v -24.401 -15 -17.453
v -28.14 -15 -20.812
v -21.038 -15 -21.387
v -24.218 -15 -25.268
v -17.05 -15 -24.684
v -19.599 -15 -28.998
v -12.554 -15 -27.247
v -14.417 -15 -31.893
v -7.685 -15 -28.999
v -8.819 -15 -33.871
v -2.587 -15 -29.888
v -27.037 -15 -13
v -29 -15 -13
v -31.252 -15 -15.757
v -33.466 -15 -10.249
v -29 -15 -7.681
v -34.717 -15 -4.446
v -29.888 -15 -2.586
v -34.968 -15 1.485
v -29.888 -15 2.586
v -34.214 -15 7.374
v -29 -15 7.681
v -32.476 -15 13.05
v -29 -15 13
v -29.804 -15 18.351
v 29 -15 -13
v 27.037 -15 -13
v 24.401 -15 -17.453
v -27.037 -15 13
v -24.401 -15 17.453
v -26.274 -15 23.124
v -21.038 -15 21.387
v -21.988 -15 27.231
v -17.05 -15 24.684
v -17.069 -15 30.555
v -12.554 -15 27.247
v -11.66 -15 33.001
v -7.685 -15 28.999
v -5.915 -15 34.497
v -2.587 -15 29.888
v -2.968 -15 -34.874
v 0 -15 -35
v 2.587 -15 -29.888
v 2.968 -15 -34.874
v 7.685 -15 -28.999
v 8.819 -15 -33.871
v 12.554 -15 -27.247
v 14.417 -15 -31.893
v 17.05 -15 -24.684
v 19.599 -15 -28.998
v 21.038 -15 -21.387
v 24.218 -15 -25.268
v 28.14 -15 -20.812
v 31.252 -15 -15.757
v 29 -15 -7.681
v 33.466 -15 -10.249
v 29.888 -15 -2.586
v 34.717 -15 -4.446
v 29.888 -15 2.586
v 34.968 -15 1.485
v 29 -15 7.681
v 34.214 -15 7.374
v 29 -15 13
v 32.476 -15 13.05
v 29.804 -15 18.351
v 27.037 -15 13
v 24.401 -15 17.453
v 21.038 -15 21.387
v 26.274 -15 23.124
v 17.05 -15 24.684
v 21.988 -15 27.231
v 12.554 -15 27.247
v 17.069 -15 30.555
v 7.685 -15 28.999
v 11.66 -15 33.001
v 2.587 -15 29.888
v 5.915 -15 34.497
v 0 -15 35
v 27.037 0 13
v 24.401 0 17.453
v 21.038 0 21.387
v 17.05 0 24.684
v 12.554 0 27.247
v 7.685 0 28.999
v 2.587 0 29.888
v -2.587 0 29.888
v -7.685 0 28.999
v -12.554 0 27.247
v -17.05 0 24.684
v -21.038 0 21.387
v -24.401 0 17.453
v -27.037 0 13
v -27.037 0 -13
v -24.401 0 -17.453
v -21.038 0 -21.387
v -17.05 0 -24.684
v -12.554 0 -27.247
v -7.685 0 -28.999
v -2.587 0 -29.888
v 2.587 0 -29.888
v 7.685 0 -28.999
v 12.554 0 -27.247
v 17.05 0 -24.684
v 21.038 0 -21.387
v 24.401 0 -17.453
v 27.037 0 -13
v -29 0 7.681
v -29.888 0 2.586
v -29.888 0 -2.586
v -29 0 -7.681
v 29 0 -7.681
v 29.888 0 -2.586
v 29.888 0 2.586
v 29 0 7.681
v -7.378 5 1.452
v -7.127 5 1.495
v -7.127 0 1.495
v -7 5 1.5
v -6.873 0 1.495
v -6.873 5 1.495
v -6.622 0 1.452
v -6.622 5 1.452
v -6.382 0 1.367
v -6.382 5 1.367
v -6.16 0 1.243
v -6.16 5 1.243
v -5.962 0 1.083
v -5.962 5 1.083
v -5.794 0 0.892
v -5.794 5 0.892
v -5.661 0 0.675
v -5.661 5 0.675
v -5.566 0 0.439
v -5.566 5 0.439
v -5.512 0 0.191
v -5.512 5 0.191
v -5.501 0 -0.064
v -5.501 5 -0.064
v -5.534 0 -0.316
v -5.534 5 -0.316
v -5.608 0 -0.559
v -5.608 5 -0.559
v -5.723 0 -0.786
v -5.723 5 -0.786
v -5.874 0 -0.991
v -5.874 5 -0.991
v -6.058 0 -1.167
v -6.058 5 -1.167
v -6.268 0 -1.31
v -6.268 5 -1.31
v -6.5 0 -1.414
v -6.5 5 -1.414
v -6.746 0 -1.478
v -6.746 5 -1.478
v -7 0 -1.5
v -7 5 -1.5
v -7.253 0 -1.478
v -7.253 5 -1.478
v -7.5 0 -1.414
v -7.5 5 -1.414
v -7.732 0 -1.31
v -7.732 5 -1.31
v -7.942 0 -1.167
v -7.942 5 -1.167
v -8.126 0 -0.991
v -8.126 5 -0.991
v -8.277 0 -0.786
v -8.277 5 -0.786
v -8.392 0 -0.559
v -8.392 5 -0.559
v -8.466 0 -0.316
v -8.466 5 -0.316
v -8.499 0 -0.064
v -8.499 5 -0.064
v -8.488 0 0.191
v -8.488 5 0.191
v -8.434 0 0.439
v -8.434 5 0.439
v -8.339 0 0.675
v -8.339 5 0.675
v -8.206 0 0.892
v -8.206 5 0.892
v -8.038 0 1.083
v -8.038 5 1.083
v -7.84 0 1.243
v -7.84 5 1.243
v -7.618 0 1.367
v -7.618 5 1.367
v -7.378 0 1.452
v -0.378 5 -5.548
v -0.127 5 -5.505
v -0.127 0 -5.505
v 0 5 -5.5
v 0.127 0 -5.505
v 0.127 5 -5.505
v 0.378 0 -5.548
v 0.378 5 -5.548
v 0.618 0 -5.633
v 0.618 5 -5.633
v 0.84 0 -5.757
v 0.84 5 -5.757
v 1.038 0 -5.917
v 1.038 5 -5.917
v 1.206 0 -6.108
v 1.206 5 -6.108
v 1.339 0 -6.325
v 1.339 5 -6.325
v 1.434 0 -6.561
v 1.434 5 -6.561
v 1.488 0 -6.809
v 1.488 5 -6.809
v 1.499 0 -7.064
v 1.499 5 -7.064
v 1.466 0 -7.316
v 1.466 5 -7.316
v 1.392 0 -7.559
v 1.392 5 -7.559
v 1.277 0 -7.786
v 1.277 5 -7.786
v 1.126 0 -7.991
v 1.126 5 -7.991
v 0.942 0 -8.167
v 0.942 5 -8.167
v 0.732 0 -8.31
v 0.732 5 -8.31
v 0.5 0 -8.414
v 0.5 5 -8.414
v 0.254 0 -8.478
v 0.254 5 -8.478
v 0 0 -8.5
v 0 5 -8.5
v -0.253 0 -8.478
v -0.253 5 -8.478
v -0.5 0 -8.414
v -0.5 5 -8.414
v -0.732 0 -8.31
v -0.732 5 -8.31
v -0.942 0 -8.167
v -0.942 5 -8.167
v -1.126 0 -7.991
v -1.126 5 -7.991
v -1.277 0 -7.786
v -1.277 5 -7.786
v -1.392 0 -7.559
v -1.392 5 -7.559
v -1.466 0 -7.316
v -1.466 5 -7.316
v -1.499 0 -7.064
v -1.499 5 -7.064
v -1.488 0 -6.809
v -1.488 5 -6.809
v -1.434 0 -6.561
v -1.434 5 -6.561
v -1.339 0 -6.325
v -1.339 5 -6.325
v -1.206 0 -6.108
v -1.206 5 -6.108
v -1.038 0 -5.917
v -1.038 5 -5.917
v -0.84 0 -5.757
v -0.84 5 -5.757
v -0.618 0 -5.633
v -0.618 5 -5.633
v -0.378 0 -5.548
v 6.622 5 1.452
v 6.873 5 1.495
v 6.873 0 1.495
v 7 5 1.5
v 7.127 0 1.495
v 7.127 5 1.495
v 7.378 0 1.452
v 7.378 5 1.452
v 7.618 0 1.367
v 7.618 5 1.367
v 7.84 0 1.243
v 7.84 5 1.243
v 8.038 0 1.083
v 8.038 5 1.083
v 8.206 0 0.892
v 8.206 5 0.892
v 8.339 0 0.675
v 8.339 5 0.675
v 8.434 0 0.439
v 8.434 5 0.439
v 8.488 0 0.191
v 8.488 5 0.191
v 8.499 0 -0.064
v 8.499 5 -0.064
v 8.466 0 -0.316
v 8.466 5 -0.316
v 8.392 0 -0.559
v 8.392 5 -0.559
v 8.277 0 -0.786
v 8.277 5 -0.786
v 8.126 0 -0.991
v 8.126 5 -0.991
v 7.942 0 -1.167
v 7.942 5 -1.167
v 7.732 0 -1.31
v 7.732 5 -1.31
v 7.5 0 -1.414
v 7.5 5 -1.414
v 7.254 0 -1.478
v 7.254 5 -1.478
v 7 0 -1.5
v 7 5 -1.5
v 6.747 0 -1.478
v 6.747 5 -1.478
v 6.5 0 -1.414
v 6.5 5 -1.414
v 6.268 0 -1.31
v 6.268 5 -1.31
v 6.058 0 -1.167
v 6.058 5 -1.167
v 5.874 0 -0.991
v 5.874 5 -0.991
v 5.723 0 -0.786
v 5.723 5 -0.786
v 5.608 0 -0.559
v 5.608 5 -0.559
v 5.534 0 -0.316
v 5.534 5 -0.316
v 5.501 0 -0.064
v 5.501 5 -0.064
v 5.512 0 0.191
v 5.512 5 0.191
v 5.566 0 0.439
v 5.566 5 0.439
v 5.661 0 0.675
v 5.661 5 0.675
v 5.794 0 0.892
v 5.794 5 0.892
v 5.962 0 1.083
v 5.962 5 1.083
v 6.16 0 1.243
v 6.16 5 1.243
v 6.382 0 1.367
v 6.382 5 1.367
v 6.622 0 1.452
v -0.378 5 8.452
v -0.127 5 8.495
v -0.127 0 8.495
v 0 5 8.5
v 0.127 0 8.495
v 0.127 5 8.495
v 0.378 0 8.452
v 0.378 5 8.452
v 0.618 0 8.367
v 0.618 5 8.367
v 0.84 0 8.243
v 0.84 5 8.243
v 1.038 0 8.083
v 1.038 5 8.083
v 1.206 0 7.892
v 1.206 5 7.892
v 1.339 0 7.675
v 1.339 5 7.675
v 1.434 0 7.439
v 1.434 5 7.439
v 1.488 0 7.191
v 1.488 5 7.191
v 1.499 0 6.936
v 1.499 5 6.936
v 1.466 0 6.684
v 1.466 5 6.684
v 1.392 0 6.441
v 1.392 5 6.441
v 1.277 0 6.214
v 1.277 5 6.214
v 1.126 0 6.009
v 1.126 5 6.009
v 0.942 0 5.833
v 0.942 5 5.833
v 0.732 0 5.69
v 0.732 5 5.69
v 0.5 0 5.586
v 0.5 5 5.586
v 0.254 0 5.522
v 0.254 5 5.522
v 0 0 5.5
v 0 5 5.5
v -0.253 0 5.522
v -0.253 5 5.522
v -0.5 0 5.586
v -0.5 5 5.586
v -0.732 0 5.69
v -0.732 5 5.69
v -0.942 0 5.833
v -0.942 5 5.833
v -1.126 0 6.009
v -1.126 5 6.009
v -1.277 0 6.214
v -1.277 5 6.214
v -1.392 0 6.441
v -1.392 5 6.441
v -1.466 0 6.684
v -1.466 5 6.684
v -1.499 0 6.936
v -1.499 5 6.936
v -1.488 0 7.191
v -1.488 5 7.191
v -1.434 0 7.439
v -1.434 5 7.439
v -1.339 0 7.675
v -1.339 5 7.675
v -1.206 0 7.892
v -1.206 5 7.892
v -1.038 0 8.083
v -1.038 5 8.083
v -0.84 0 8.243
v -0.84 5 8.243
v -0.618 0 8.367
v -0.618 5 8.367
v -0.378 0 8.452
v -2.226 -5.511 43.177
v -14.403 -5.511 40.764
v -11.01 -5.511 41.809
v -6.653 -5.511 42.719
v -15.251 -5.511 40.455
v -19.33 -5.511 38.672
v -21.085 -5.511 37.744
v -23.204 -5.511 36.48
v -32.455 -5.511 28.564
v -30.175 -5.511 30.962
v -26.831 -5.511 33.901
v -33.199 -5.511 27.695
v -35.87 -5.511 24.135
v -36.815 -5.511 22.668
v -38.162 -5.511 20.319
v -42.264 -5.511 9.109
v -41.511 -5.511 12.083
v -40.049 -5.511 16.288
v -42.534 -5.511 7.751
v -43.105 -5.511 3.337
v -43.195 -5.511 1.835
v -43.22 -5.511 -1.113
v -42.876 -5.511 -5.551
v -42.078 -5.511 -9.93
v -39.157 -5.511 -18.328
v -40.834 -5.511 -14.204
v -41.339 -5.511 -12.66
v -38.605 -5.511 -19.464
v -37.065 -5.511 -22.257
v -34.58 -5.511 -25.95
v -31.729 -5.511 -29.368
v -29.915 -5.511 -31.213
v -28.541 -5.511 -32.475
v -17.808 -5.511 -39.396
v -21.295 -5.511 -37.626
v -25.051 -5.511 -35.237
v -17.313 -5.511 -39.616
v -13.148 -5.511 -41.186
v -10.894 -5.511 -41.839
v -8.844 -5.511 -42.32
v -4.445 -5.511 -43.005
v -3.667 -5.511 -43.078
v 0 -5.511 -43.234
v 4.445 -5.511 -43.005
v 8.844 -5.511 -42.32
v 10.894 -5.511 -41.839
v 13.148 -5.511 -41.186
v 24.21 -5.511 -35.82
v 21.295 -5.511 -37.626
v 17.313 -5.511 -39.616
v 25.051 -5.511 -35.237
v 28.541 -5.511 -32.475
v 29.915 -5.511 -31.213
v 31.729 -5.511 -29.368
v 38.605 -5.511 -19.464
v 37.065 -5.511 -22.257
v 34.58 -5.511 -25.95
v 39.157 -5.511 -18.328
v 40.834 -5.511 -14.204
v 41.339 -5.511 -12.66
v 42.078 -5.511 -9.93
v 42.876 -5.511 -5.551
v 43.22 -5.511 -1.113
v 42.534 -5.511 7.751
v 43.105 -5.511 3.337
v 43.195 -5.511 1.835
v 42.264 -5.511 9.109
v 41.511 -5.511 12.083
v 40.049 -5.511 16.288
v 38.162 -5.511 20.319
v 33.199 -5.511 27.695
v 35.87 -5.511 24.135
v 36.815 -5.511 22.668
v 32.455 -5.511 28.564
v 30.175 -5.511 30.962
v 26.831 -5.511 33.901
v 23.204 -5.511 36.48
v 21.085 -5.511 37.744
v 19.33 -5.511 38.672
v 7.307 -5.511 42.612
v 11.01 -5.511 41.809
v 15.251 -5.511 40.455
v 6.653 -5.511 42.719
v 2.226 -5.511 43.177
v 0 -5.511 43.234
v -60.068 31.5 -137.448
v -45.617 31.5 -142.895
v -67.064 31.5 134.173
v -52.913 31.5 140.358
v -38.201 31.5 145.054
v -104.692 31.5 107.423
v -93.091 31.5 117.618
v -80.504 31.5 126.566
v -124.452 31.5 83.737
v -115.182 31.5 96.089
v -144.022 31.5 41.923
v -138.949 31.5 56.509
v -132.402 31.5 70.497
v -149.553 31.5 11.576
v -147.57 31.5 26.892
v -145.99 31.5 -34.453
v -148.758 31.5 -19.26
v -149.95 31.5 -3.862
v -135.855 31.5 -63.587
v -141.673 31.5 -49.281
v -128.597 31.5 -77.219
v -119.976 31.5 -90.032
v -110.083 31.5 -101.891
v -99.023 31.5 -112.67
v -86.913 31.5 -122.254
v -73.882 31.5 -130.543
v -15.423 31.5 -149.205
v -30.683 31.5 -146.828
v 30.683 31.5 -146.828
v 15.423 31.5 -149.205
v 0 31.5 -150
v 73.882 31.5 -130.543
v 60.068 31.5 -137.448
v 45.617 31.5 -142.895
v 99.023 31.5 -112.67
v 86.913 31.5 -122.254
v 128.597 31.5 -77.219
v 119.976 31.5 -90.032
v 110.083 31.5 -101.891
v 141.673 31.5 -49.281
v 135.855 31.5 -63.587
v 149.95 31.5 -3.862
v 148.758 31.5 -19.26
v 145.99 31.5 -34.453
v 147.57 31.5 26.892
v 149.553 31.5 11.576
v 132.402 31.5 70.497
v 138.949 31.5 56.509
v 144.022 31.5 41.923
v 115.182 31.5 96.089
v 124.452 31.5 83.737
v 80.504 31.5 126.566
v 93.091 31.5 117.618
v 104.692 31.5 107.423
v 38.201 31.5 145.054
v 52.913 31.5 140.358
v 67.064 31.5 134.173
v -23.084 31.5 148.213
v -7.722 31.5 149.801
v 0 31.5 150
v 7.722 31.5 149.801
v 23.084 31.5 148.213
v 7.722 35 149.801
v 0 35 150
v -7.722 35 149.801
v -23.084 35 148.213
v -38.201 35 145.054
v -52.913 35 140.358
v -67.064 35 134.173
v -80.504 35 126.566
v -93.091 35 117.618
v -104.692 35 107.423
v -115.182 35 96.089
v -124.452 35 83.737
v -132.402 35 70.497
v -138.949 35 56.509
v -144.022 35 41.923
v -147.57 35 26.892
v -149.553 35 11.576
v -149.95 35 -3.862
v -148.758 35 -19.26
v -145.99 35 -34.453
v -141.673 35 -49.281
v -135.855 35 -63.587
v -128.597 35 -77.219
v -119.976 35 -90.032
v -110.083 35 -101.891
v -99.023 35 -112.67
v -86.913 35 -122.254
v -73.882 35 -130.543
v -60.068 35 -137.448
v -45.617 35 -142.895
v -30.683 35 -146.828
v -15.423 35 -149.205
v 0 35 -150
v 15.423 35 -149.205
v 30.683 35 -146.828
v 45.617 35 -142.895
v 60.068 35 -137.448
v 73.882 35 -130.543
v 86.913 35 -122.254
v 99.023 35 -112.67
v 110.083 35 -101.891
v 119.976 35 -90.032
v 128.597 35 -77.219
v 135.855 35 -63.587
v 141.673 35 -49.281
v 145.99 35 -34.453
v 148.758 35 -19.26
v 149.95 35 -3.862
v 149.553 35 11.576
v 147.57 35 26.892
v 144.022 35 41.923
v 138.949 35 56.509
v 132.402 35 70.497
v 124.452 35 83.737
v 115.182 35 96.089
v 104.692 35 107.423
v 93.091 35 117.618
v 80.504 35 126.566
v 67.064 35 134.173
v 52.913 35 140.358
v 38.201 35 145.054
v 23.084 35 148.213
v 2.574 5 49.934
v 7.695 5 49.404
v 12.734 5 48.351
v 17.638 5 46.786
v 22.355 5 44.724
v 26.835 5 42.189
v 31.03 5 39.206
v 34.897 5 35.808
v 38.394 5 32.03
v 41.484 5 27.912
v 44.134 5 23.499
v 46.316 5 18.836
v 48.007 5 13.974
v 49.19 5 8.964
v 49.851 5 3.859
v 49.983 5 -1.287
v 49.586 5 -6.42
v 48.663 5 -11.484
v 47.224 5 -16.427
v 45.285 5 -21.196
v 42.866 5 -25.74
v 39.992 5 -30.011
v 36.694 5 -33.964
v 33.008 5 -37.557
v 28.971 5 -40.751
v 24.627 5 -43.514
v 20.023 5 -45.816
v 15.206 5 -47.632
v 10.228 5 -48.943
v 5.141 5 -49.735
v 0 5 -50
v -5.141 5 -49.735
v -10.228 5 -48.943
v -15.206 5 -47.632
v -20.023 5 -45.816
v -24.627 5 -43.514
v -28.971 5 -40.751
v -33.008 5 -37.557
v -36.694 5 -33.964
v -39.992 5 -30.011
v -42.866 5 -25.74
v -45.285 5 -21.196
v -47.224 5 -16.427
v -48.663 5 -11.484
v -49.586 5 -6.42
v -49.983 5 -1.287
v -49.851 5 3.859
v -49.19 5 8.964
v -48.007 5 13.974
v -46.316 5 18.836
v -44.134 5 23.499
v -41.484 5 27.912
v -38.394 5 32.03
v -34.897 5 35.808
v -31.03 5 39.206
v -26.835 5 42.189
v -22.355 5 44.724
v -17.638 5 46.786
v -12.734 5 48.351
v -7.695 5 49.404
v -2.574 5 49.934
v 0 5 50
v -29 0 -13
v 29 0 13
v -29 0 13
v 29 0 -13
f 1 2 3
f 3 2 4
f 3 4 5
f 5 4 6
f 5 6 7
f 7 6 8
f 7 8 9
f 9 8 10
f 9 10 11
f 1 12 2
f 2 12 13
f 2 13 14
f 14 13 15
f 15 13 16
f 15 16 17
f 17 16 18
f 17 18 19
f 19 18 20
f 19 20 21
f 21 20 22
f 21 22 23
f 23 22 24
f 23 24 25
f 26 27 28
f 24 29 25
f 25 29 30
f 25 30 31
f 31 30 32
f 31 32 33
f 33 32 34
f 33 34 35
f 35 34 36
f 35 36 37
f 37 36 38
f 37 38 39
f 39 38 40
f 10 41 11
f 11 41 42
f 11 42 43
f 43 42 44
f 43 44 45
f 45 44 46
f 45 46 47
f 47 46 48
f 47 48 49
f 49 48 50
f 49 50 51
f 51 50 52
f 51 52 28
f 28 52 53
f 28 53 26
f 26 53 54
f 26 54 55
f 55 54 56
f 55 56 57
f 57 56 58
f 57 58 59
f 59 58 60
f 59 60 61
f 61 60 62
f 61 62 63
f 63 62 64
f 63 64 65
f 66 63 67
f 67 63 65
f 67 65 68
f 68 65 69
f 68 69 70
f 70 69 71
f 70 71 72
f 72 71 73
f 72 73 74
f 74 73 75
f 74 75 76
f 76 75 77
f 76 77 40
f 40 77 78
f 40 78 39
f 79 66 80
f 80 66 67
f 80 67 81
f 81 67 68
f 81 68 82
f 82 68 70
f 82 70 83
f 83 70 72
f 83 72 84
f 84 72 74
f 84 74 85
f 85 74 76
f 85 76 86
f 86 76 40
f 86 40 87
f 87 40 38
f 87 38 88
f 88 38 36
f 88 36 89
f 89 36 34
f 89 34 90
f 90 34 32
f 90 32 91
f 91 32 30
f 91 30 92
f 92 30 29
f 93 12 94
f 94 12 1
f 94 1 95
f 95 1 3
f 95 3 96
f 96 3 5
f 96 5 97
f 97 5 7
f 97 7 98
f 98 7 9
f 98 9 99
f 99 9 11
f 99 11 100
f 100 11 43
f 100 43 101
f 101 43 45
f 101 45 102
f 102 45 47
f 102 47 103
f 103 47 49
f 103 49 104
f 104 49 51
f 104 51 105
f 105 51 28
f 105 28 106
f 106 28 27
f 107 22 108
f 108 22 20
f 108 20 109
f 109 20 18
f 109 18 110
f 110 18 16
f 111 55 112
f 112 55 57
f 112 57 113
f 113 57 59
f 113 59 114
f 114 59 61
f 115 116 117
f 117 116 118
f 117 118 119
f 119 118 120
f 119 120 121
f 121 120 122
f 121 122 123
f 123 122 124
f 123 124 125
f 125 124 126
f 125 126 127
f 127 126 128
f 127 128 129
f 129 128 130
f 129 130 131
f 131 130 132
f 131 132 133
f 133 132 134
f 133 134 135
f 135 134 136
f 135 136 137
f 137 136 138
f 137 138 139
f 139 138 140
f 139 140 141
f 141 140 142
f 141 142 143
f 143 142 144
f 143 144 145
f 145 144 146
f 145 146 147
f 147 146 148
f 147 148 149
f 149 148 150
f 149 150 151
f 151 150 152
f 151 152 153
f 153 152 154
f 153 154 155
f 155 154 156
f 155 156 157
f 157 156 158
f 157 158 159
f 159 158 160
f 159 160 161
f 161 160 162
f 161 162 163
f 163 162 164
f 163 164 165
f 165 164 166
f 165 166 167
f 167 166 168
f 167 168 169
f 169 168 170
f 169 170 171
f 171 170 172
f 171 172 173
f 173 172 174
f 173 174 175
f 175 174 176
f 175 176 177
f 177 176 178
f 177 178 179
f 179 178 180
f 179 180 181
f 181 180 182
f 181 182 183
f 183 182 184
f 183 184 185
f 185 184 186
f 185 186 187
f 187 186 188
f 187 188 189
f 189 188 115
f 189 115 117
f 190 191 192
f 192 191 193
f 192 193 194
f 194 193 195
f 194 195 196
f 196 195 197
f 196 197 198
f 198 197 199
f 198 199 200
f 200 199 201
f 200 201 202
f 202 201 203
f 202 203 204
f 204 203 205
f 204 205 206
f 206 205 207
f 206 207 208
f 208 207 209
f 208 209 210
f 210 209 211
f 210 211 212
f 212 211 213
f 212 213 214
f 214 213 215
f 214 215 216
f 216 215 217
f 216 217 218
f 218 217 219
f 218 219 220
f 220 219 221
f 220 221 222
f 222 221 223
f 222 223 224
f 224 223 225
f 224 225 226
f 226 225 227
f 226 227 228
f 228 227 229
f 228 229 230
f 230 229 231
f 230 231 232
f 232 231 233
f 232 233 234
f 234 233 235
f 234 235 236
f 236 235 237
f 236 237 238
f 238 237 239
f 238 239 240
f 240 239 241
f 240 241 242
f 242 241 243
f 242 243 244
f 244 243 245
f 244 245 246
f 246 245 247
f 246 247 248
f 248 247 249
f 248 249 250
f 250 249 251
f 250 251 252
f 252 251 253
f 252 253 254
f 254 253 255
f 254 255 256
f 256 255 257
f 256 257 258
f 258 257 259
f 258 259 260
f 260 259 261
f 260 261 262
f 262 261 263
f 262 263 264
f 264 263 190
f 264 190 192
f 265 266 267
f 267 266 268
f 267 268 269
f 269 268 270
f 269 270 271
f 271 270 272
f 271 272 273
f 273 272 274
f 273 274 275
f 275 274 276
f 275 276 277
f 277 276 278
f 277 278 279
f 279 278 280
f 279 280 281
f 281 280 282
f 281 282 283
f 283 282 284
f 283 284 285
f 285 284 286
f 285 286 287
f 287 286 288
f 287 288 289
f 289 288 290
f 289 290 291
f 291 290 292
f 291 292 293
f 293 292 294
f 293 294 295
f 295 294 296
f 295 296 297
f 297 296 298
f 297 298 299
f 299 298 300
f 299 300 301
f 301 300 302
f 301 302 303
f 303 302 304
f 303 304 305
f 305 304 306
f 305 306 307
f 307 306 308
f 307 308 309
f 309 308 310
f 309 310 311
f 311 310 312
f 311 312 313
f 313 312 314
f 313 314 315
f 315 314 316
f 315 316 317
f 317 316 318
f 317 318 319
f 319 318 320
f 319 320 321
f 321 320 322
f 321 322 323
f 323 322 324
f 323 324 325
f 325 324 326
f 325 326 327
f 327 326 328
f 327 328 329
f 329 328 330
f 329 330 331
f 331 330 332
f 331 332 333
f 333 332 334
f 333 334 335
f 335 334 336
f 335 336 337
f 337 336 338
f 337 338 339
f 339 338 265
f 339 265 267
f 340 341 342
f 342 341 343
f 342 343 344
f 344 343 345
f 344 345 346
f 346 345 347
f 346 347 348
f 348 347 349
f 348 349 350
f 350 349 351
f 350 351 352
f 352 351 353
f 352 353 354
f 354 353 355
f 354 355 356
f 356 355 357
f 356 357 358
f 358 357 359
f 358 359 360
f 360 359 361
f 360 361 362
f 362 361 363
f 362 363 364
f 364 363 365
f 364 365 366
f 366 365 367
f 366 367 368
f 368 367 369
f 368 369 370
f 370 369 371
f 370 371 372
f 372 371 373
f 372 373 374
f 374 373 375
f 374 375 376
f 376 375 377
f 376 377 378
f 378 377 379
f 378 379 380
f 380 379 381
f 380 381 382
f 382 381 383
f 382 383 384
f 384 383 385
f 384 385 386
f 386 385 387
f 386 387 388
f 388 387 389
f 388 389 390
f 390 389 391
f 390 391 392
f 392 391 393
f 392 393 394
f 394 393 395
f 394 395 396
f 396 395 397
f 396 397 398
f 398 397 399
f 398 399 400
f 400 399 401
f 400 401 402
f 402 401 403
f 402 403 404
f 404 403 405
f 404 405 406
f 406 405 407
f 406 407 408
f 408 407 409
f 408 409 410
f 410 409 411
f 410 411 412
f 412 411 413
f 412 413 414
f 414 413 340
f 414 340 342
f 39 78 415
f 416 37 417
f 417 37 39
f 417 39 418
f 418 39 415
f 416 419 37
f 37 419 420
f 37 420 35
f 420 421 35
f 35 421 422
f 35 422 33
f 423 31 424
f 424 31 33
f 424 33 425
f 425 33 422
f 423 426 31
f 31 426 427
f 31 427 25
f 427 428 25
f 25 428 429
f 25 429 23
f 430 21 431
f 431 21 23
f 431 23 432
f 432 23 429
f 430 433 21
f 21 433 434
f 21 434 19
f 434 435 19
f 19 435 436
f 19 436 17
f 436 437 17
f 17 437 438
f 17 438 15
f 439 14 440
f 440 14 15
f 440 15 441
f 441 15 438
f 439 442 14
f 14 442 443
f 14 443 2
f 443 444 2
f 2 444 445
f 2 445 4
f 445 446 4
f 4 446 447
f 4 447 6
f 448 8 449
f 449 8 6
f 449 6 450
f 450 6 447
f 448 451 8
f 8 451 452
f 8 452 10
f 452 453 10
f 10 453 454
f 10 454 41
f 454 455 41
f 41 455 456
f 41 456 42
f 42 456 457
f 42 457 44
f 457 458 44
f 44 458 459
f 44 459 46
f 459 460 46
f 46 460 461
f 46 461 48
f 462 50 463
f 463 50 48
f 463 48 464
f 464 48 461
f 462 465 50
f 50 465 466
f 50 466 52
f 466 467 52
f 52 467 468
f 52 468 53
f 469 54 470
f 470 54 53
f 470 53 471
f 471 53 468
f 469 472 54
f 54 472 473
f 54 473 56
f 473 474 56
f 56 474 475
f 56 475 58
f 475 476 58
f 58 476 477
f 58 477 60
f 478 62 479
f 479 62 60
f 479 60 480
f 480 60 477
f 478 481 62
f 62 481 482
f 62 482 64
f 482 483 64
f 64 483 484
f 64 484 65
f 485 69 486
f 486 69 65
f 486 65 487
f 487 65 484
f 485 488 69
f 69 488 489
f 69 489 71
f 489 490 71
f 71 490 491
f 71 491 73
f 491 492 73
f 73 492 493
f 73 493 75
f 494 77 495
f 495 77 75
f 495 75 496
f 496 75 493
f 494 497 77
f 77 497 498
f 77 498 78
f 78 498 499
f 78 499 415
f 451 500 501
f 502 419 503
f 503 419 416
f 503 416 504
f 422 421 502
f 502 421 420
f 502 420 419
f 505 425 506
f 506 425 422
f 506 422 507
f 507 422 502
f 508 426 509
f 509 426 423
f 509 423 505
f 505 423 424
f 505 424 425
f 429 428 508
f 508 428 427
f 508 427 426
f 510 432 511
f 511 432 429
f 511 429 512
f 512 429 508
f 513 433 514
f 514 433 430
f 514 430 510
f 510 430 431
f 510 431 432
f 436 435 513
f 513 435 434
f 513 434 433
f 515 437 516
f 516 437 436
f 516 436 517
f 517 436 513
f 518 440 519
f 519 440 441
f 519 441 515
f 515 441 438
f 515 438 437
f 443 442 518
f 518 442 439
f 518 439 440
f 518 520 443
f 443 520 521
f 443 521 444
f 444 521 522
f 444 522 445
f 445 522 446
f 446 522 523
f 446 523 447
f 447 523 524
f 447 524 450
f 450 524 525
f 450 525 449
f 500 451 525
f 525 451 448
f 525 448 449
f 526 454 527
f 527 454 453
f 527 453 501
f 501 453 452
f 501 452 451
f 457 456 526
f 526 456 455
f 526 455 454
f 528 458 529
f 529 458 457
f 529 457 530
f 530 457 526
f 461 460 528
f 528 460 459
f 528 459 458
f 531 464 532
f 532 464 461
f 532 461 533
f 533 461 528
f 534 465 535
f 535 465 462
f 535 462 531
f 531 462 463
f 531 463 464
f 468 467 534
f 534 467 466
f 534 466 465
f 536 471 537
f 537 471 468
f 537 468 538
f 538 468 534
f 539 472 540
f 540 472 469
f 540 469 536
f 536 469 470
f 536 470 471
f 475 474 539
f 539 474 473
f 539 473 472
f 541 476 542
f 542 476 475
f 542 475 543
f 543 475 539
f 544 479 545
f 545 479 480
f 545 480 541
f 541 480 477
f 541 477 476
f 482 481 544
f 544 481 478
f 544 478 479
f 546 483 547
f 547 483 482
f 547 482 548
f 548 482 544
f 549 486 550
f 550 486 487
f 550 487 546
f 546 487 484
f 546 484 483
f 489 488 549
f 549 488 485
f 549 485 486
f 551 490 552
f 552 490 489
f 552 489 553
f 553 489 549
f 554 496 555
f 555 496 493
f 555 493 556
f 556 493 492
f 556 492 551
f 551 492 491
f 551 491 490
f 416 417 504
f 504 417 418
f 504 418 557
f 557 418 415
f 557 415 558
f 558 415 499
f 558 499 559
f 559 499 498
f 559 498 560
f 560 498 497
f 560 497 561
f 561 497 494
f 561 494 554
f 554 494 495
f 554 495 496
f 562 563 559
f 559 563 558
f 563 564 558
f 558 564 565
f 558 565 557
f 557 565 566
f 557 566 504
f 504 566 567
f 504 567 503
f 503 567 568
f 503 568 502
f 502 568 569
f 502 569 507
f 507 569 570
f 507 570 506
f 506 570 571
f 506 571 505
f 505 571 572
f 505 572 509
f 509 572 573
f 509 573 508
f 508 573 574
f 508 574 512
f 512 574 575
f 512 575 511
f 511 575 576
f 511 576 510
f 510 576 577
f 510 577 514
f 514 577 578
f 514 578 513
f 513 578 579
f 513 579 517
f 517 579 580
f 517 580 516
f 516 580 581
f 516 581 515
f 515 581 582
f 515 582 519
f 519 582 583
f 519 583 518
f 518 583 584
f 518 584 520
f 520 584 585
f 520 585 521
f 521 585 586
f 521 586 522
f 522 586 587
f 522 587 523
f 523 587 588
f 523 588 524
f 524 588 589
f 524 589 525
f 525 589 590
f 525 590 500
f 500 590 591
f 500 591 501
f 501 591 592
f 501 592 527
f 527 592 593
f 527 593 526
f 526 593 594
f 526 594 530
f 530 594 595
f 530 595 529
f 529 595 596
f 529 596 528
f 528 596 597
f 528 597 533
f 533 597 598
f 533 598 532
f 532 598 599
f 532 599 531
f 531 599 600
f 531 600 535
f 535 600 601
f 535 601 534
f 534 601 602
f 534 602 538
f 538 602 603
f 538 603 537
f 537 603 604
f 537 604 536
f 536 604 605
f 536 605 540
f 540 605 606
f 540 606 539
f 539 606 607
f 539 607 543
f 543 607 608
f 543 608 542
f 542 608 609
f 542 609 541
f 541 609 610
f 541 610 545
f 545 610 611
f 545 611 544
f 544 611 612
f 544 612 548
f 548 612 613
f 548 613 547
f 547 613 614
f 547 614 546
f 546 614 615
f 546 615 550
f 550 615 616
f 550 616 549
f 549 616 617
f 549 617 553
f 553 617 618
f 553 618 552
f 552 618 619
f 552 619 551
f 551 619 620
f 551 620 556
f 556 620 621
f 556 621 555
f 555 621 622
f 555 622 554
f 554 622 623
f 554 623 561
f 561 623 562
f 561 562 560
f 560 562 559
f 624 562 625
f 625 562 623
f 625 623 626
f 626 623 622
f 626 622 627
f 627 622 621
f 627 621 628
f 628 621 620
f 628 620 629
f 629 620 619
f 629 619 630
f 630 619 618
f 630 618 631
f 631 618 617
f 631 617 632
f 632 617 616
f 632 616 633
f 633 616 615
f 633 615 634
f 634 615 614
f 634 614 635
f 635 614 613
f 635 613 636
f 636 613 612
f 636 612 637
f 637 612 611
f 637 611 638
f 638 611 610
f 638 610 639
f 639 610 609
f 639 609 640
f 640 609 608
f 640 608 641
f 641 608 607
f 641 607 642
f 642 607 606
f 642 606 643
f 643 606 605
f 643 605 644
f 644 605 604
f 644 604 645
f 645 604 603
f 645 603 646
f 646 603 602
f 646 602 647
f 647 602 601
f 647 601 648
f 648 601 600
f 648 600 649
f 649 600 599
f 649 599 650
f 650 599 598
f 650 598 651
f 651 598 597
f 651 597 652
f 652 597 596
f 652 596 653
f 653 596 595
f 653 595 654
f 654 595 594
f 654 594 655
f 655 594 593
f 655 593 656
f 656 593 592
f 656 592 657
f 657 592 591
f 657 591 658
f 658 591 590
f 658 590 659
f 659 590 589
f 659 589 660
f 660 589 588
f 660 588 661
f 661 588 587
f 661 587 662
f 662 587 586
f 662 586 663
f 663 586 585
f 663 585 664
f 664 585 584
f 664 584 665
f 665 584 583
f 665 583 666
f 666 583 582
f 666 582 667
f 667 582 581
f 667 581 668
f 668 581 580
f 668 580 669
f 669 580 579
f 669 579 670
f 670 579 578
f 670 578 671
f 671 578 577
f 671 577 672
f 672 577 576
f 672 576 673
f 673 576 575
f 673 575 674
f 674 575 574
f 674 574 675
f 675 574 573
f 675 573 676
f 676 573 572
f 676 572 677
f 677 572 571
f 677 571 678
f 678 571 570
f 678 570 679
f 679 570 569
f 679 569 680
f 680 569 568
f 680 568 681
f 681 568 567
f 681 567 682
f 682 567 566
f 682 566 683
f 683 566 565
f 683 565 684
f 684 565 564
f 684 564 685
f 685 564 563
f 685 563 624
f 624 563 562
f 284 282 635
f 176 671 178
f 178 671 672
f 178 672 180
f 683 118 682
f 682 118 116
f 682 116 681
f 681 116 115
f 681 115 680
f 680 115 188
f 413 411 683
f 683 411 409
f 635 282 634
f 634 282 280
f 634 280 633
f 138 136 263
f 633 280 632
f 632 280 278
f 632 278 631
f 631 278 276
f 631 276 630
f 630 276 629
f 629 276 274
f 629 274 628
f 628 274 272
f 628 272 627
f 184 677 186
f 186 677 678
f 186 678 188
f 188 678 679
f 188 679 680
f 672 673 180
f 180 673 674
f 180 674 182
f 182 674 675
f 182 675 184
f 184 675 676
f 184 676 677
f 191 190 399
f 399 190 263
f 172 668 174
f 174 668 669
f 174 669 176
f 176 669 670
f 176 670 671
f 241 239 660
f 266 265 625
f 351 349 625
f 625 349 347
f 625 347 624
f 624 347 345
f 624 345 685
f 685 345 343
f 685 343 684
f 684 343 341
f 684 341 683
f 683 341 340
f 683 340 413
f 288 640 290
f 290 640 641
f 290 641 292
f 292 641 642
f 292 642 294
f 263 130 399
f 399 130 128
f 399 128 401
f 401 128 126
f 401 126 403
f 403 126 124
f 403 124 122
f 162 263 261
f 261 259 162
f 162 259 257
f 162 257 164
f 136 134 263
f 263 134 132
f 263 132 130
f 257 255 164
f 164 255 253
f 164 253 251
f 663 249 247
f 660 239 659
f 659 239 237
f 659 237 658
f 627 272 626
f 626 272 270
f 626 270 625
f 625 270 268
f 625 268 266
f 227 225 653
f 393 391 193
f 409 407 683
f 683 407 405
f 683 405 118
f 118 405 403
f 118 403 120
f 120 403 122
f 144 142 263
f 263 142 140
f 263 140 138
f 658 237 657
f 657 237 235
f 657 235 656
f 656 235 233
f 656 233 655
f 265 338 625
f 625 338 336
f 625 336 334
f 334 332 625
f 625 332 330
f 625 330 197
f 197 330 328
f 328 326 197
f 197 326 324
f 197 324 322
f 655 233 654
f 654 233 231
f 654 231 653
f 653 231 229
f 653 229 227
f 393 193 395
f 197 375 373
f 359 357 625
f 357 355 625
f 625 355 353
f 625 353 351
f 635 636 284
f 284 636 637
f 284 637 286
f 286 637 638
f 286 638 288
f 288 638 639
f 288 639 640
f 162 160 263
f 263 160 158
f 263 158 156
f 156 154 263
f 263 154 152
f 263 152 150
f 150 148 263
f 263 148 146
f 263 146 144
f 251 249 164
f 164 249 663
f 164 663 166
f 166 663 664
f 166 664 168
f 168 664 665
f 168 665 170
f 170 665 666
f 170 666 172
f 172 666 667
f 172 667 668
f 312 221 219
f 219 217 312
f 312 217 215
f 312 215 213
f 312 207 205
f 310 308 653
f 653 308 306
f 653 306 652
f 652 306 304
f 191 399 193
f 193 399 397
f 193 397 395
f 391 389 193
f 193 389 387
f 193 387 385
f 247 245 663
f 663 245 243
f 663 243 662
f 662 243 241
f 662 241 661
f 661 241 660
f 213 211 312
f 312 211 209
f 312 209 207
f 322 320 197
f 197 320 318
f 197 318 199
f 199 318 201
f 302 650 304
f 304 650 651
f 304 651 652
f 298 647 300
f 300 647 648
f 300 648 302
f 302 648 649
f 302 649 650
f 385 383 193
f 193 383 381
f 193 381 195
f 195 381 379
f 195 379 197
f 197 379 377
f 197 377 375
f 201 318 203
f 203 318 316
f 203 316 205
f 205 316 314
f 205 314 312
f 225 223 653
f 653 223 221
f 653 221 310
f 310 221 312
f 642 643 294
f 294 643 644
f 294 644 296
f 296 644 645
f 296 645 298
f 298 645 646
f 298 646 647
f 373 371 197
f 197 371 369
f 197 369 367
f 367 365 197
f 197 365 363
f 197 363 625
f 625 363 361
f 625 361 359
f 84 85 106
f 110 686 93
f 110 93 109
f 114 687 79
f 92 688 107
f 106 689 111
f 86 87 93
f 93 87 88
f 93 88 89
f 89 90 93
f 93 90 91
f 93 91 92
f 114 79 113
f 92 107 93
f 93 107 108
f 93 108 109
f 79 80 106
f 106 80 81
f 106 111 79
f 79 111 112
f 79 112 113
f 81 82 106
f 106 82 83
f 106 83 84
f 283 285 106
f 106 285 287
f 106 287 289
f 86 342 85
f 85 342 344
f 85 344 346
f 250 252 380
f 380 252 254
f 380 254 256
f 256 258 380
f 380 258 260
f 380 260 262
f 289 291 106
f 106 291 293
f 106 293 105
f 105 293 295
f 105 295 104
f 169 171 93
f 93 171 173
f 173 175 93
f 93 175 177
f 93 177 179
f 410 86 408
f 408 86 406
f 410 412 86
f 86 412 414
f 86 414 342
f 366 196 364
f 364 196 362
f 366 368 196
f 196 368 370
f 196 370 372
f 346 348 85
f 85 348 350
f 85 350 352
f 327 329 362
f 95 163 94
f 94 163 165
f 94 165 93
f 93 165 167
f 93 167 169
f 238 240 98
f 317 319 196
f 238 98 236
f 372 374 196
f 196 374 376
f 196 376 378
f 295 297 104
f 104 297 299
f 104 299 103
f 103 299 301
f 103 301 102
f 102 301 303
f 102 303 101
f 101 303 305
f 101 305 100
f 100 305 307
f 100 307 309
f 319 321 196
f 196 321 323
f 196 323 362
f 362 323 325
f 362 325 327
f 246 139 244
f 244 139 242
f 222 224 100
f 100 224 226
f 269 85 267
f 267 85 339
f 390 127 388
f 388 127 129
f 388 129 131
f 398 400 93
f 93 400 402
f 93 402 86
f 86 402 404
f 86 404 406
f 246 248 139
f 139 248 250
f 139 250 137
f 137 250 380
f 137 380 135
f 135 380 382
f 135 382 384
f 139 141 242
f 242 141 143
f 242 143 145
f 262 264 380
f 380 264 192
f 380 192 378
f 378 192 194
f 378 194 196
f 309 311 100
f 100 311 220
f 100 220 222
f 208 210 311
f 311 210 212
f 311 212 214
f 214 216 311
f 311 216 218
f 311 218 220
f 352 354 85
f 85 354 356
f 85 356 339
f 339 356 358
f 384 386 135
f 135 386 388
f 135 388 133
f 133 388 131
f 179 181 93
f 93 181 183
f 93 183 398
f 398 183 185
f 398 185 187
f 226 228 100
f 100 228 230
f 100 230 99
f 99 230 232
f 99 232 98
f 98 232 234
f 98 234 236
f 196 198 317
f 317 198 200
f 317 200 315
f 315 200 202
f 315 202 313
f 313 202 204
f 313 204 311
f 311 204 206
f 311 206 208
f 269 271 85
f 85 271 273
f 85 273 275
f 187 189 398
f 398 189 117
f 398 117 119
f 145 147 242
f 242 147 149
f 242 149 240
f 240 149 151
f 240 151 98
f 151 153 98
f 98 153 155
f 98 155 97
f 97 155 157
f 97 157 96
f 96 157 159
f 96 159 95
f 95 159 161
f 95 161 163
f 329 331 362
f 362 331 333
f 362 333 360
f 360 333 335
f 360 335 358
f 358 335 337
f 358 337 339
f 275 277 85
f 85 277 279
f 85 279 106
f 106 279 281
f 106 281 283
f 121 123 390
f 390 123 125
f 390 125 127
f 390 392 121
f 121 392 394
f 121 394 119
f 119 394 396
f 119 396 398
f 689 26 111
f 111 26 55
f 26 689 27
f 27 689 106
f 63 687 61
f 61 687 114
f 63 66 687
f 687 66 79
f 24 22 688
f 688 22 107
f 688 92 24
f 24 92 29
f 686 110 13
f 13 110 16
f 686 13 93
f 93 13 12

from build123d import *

# Parameters (mm, degrees)
SKETCH3_R          = 1.5
CUT_EXTRUDE1_DEPTH = 218.944947177
SKETCH4_R          = 30
CUT_EXTRUDE2_DEPTH = 15
SKETCH5_W          = 58
SKETCH5_H          = 26
CUT_EXTRUDE3_DEPTH = 216


with BuildPart() as part:
    # Sketch2 → Revolve1 (revolve)
    with BuildSketch(Plane.XY, mode=Mode.PRIVATE) as revolve1_sk:
        Polygon((0, 0), (35, 0), (43.234110893, 9.489398467), (150, 46.5), (150, 50), (50, 20), (0, 20), (0, 7.226614915), align=None)
    revolve(revolve1_sk.sketch.rotate(Axis((0, 7.226614915, 0), (0, 1, 0)), 270), axis=Axis((0, 7.226614915, 0), (0, 1, 0)))

    # Sketch3 → Cut-Extrude1 (cut, through all)
    with BuildSketch(Plane.XZ):
        with Locations(Location((0, 7, 0), (0, 0, 270))):
            Circle(SKETCH3_R)
        with Locations(Location((7, 0, 0), (0, 0, 270))):
            Circle(SKETCH3_R)
        with Locations(Location((0, -7, 0), (0, 0, 270))):
            Circle(SKETCH3_R)
        with Locations(Location((-7, 0, 0), (0, 0, 270))):
            Circle(SKETCH3_R)
    extrude(amount=-CUT_EXTRUDE1_DEPTH, mode=Mode.SUBTRACT)

    # Sketch4 → Cut-Extrude2 (cut)
    with BuildSketch(Plane.XZ):
        with Locations(Location((0, 0, 0), (0, 0, 270))):
            Circle(SKETCH4_R)
    extrude(amount=-CUT_EXTRUDE2_DEPTH, mode=Mode.SUBTRACT)

    # Sketch5 → Cut-Extrude3 (cut, through all)
    with BuildSketch(Plane.XZ.offset(-15)):
        Rectangle(SKETCH5_W, SKETCH5_H)
    extrude(amount=CUT_EXTRUDE3_DEPTH, mode=Mode.SUBTRACT)


with BuildPart() as part_1:
    # Body-Move/Copy1: moved
    add(part.part.moved(Location((0, -15, 0))))


solid = part_1.part
